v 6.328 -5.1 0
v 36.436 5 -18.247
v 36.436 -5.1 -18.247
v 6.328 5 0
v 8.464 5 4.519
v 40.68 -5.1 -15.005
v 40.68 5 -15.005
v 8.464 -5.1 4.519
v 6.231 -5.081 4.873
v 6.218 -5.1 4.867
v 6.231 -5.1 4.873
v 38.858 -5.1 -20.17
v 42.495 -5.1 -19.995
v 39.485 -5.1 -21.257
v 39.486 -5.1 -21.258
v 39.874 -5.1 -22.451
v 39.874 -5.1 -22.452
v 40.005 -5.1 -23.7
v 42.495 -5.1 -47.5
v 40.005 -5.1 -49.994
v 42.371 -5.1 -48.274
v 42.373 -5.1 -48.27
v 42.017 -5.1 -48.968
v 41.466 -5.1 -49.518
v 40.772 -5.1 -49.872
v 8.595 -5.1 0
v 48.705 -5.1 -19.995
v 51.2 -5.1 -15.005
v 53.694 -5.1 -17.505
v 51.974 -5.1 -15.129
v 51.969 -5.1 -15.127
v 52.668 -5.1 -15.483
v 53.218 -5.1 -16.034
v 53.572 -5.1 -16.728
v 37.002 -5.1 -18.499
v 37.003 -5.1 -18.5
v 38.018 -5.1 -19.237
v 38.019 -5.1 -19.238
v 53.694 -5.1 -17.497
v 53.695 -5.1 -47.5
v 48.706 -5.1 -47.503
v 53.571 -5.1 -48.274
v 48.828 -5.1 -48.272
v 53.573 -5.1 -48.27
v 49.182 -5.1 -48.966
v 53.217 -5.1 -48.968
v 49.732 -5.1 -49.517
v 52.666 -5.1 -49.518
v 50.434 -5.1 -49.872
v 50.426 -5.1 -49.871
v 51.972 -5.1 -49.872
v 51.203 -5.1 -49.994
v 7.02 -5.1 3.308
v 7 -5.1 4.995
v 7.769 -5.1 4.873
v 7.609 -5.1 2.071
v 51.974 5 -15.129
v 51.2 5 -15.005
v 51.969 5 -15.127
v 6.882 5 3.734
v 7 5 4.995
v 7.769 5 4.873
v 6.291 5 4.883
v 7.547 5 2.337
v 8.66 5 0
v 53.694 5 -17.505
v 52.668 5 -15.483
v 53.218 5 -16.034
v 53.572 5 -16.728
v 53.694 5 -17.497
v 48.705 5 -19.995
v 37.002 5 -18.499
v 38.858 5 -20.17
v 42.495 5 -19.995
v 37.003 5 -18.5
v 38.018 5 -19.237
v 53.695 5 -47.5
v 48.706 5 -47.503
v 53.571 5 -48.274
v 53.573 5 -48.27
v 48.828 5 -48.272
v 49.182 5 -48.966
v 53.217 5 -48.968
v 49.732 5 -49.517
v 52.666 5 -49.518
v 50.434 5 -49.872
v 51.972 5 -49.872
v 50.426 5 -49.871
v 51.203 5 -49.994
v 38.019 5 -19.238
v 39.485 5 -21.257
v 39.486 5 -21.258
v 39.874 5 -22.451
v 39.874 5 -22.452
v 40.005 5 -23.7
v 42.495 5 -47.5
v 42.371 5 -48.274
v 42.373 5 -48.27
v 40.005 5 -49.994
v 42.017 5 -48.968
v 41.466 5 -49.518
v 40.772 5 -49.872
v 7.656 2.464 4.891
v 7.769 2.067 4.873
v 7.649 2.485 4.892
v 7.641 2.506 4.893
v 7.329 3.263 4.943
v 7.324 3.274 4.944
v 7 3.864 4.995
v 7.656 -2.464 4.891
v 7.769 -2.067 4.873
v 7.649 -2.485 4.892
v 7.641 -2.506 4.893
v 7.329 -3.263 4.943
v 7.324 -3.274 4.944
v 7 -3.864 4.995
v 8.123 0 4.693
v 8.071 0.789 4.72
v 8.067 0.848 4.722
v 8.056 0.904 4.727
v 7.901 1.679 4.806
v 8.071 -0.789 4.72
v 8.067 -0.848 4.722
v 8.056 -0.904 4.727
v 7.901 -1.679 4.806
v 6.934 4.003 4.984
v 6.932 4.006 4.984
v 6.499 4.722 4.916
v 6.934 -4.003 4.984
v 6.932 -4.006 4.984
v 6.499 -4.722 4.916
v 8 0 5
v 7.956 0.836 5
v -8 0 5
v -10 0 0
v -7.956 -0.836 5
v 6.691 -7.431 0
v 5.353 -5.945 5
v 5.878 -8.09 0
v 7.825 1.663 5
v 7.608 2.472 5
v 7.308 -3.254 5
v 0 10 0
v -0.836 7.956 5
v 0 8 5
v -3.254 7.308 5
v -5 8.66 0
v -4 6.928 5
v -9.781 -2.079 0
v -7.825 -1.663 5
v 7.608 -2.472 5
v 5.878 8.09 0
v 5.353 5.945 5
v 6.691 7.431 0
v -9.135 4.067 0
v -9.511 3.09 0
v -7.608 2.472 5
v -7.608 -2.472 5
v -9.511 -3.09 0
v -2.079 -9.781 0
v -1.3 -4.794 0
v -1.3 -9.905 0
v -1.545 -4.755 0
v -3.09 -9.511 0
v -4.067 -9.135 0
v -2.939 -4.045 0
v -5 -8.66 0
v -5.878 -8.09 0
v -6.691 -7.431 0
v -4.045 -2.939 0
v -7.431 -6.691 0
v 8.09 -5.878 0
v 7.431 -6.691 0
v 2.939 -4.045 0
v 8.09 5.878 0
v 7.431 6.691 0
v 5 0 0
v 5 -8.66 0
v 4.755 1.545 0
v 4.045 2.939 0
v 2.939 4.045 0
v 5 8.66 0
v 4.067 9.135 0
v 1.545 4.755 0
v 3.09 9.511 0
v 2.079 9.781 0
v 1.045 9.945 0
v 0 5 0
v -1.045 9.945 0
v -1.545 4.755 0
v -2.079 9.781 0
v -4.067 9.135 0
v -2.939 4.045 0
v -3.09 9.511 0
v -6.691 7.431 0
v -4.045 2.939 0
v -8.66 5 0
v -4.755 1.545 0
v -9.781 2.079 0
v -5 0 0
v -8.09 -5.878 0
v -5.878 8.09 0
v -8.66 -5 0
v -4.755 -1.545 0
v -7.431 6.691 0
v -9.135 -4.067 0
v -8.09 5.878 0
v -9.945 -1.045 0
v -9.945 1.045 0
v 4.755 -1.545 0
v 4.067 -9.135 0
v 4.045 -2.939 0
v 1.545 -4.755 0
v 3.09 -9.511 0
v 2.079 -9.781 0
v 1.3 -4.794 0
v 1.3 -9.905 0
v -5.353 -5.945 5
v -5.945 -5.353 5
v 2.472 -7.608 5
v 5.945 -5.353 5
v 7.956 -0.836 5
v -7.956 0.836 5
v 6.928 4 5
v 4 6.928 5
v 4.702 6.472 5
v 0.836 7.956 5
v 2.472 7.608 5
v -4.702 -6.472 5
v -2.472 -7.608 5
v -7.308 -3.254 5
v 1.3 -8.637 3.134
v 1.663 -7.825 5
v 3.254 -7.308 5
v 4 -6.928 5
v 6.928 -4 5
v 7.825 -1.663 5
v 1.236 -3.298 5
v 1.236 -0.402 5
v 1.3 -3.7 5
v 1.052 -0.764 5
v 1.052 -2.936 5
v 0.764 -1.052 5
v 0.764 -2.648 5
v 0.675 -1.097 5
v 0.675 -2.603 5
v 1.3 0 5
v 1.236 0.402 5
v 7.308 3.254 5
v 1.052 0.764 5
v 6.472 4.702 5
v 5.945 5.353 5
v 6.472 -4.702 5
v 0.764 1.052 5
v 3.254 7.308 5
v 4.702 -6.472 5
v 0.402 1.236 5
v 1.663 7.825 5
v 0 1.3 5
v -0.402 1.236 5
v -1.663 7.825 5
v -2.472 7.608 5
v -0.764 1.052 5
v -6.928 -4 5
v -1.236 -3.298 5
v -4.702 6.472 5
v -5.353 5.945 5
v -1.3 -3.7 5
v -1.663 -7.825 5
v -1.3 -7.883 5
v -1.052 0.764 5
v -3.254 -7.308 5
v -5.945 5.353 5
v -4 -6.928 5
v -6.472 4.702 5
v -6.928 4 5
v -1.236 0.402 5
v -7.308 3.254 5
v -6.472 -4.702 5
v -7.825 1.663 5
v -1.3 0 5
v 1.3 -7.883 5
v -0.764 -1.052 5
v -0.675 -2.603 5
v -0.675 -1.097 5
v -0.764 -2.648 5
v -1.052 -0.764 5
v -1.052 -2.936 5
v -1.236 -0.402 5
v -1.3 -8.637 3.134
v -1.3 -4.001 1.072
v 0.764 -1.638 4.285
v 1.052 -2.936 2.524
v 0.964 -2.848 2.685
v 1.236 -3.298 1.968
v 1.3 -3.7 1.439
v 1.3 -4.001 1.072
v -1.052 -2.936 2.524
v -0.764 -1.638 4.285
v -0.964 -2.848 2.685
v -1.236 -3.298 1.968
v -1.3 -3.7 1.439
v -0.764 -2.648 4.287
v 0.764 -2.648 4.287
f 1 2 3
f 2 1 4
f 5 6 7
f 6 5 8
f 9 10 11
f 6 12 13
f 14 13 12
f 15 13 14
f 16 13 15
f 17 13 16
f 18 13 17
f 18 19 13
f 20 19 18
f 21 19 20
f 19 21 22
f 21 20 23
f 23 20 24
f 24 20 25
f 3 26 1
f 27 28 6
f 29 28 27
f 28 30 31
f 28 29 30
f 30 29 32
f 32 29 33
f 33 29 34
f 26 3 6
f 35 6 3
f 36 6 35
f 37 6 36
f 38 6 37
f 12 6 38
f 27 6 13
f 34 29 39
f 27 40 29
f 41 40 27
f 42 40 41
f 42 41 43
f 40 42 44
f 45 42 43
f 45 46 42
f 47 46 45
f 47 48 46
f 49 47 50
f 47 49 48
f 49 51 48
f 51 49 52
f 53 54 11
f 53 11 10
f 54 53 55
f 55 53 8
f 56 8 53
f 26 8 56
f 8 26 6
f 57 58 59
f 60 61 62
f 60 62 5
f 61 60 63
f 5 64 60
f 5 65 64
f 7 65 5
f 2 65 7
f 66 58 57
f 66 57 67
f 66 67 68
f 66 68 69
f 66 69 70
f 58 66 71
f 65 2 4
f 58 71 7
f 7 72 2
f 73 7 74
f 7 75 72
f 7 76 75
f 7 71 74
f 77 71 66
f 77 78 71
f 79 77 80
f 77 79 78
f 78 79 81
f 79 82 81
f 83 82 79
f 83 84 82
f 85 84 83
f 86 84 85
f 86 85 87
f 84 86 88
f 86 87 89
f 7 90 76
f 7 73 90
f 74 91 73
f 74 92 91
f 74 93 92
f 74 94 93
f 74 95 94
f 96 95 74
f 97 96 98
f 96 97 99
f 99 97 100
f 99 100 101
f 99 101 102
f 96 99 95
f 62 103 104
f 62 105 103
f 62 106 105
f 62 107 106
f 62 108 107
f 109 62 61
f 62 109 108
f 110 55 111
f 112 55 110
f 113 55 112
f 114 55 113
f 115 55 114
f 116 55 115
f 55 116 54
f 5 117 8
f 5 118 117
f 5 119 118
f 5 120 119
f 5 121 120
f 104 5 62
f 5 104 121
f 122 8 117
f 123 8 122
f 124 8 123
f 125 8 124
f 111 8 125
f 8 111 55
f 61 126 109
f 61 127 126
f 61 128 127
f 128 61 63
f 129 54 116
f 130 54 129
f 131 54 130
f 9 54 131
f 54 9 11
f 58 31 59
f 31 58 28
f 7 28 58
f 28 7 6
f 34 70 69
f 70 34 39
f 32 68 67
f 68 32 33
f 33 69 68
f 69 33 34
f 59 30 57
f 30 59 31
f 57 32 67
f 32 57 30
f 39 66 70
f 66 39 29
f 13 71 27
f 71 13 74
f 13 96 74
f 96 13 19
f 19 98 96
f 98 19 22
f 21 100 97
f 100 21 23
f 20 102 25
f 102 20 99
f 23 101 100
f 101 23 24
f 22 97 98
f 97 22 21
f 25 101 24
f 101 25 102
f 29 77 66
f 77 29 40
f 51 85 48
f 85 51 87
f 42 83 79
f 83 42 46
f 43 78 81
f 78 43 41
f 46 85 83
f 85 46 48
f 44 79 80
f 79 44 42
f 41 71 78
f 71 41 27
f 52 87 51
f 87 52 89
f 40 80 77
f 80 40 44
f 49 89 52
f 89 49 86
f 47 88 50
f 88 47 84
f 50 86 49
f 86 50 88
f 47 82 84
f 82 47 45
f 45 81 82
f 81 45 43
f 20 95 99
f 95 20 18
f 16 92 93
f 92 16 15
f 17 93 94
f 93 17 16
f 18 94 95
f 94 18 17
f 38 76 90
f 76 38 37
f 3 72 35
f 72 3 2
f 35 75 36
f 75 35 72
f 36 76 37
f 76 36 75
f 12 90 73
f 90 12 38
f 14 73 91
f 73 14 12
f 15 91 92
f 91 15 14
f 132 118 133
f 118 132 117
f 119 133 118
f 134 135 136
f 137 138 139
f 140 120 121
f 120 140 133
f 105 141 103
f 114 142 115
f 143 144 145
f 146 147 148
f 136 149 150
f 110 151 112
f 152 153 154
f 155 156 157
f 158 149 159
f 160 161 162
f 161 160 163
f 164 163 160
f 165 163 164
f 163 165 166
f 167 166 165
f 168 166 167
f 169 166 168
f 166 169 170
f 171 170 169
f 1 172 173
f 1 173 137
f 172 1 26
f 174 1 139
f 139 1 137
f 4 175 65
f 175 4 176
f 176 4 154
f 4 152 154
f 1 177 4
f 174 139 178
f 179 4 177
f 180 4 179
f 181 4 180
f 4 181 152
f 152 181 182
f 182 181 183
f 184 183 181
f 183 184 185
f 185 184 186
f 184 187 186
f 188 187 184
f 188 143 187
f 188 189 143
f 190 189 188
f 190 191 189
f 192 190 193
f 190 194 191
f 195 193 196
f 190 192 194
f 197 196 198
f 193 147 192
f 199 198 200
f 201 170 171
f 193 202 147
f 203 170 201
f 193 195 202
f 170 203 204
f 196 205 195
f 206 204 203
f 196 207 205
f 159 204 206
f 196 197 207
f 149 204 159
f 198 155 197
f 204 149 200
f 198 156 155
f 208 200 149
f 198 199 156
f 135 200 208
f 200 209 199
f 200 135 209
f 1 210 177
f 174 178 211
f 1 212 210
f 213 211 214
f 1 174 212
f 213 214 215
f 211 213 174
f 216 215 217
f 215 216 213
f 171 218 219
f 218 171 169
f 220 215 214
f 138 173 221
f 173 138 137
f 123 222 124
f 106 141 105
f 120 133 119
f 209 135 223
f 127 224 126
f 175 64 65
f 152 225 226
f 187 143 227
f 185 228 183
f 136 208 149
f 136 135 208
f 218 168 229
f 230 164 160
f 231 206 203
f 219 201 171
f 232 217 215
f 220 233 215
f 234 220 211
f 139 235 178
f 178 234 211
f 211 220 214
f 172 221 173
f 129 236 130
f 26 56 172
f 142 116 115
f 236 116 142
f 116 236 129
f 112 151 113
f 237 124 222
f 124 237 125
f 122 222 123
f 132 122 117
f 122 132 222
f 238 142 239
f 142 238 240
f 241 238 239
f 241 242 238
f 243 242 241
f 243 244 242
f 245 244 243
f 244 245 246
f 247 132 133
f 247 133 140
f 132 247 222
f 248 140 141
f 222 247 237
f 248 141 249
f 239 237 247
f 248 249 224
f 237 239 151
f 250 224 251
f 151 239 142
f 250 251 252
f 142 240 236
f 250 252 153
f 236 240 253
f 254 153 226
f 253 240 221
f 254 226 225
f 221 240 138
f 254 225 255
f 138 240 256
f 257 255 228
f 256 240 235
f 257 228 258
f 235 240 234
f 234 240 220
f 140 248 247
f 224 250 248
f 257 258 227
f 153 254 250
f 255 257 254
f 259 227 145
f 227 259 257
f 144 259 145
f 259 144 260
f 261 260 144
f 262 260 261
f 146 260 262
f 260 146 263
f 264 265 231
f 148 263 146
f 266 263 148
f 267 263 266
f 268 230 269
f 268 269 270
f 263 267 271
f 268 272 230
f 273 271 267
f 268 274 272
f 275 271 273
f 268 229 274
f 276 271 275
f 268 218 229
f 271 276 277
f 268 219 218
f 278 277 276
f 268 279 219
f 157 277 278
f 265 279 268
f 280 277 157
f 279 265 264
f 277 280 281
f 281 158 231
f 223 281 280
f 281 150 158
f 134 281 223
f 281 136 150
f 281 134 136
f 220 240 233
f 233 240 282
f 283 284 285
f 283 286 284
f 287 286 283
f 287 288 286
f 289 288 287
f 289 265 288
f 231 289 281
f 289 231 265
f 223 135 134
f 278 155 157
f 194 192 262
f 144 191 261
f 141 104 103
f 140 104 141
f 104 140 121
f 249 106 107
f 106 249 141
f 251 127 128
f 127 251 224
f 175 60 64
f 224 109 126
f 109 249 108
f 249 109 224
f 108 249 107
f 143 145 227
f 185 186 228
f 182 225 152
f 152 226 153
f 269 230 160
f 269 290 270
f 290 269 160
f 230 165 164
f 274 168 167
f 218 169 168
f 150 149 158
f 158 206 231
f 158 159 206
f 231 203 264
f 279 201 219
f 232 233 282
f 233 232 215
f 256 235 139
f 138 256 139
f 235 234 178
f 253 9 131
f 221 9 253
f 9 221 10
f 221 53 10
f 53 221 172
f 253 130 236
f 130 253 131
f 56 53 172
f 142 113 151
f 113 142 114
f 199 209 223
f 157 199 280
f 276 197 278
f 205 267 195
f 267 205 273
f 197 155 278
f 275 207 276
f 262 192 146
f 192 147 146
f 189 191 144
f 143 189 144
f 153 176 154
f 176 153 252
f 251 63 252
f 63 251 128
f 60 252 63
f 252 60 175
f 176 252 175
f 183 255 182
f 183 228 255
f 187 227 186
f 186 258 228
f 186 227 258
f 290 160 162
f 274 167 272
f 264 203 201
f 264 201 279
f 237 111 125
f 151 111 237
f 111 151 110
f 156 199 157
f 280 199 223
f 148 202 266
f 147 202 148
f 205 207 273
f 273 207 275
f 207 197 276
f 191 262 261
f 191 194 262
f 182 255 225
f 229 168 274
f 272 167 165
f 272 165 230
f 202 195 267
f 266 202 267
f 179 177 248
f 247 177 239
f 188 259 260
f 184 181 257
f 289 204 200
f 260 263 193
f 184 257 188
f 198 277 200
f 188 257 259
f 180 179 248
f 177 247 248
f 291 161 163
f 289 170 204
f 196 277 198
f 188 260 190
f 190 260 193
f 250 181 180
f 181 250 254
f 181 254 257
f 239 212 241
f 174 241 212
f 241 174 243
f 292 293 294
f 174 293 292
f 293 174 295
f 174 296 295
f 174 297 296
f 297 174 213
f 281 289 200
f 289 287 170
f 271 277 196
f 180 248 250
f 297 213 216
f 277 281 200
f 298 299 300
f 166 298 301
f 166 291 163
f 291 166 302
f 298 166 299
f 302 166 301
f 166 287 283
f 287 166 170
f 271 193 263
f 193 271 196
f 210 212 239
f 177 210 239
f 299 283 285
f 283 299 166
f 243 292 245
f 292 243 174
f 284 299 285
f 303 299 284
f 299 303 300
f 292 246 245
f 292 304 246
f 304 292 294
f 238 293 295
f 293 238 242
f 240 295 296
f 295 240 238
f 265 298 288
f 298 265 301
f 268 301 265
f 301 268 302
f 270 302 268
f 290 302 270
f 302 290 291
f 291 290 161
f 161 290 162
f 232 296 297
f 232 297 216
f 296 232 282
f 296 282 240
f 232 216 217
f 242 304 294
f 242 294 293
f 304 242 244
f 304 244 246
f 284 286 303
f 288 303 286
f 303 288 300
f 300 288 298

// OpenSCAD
a=6;
c=0;
d=0.8;
b=2;

/*
_points=[for (i=[0:5]) [a*(b-d*floor(i/2)+c)*sin(90*i+45),a*(b-d*floor((i-1)/2)+c)*cos(90*i+45)]];
p=[_points[0][0],_points[0][1]+10];
points=concat([p],_points);
*/

width=6.22;
points2r=2.49;
points2=[[0,0],[33,-20],[33,-30-20],[33,-20],[33+width+2*points2r,-20],[33+width+2*points2r,-30-20]];

$fn=20;


filaguider();


module filaguider()
{
	/*
	rotate(-90,[0,0,1])
		difference()
		{
			cylinder(h=5,r1=18,r2=20,$fn=60);
			minkowski()
			{
				linear_extrude(0.1)
				{
					polyline(points,0.1);
				}
				cylinder(h=5,r=1.9,r2=2.8);
			}
		}
	*/
	
	difference()
	{
		cylinder(h=5,r1=10,r2=8,$fn=60);
		d=3.7;
		d_i=2.6;
		d_o=10;
		d_t=1.35;
		#hull()
		{
			translate([0,0,0])
			cylinder(h=5,r1=d_o/2,r2=d_i/2);
			cylinder(h=5,r1=d_o/2,r2=d_i/2);
		}
		#hull()
		{
			translate([0,0,0])
			cylinder(h=5,r1=d_i/2,r2=d_t/2);
			translate([0,-5,0])
			cylinder(h=5,r1=d_i/2,r2=d_t/2);
		}
		#hull()
		{
			translate([0,-d,0])
			cylinder(h=5,r1=d_i/2,r2=d_i/2);
			translate([0,-10,0])
			cylinder(h=5,r1=d_i/2,r2=d_i/2);
		}
	}

	translate([8-1,5,2.5])
	rotate(90,[1,0,0])
	difference()
	{
		minkowski()
		{
			linear_extrude(0.1)
			{
				polyline(points2,0.005);
			}
			cylinder(h=10,r=points2r);
		}
		r=6;
		translate(points2[1])
		translate([-r,-36.2])
		#minkowski()
		{
			linear_extrude(0.1)
			{
				polyline([[0,0],[0,30]],0.005);
			}
			cylinder(h=10,r=r,$fn=30);
		}
	}
}

module line(p1,p2,r)
{
	hull()
	{
		translate(p1)
			circle(r);
		translate(p2)
			circle(r);
	}
}

module polyline(points,r)
{
	for (i=[0:len(points)-2])
	{
		line(points[i],points[i+1],r);
	}
}
